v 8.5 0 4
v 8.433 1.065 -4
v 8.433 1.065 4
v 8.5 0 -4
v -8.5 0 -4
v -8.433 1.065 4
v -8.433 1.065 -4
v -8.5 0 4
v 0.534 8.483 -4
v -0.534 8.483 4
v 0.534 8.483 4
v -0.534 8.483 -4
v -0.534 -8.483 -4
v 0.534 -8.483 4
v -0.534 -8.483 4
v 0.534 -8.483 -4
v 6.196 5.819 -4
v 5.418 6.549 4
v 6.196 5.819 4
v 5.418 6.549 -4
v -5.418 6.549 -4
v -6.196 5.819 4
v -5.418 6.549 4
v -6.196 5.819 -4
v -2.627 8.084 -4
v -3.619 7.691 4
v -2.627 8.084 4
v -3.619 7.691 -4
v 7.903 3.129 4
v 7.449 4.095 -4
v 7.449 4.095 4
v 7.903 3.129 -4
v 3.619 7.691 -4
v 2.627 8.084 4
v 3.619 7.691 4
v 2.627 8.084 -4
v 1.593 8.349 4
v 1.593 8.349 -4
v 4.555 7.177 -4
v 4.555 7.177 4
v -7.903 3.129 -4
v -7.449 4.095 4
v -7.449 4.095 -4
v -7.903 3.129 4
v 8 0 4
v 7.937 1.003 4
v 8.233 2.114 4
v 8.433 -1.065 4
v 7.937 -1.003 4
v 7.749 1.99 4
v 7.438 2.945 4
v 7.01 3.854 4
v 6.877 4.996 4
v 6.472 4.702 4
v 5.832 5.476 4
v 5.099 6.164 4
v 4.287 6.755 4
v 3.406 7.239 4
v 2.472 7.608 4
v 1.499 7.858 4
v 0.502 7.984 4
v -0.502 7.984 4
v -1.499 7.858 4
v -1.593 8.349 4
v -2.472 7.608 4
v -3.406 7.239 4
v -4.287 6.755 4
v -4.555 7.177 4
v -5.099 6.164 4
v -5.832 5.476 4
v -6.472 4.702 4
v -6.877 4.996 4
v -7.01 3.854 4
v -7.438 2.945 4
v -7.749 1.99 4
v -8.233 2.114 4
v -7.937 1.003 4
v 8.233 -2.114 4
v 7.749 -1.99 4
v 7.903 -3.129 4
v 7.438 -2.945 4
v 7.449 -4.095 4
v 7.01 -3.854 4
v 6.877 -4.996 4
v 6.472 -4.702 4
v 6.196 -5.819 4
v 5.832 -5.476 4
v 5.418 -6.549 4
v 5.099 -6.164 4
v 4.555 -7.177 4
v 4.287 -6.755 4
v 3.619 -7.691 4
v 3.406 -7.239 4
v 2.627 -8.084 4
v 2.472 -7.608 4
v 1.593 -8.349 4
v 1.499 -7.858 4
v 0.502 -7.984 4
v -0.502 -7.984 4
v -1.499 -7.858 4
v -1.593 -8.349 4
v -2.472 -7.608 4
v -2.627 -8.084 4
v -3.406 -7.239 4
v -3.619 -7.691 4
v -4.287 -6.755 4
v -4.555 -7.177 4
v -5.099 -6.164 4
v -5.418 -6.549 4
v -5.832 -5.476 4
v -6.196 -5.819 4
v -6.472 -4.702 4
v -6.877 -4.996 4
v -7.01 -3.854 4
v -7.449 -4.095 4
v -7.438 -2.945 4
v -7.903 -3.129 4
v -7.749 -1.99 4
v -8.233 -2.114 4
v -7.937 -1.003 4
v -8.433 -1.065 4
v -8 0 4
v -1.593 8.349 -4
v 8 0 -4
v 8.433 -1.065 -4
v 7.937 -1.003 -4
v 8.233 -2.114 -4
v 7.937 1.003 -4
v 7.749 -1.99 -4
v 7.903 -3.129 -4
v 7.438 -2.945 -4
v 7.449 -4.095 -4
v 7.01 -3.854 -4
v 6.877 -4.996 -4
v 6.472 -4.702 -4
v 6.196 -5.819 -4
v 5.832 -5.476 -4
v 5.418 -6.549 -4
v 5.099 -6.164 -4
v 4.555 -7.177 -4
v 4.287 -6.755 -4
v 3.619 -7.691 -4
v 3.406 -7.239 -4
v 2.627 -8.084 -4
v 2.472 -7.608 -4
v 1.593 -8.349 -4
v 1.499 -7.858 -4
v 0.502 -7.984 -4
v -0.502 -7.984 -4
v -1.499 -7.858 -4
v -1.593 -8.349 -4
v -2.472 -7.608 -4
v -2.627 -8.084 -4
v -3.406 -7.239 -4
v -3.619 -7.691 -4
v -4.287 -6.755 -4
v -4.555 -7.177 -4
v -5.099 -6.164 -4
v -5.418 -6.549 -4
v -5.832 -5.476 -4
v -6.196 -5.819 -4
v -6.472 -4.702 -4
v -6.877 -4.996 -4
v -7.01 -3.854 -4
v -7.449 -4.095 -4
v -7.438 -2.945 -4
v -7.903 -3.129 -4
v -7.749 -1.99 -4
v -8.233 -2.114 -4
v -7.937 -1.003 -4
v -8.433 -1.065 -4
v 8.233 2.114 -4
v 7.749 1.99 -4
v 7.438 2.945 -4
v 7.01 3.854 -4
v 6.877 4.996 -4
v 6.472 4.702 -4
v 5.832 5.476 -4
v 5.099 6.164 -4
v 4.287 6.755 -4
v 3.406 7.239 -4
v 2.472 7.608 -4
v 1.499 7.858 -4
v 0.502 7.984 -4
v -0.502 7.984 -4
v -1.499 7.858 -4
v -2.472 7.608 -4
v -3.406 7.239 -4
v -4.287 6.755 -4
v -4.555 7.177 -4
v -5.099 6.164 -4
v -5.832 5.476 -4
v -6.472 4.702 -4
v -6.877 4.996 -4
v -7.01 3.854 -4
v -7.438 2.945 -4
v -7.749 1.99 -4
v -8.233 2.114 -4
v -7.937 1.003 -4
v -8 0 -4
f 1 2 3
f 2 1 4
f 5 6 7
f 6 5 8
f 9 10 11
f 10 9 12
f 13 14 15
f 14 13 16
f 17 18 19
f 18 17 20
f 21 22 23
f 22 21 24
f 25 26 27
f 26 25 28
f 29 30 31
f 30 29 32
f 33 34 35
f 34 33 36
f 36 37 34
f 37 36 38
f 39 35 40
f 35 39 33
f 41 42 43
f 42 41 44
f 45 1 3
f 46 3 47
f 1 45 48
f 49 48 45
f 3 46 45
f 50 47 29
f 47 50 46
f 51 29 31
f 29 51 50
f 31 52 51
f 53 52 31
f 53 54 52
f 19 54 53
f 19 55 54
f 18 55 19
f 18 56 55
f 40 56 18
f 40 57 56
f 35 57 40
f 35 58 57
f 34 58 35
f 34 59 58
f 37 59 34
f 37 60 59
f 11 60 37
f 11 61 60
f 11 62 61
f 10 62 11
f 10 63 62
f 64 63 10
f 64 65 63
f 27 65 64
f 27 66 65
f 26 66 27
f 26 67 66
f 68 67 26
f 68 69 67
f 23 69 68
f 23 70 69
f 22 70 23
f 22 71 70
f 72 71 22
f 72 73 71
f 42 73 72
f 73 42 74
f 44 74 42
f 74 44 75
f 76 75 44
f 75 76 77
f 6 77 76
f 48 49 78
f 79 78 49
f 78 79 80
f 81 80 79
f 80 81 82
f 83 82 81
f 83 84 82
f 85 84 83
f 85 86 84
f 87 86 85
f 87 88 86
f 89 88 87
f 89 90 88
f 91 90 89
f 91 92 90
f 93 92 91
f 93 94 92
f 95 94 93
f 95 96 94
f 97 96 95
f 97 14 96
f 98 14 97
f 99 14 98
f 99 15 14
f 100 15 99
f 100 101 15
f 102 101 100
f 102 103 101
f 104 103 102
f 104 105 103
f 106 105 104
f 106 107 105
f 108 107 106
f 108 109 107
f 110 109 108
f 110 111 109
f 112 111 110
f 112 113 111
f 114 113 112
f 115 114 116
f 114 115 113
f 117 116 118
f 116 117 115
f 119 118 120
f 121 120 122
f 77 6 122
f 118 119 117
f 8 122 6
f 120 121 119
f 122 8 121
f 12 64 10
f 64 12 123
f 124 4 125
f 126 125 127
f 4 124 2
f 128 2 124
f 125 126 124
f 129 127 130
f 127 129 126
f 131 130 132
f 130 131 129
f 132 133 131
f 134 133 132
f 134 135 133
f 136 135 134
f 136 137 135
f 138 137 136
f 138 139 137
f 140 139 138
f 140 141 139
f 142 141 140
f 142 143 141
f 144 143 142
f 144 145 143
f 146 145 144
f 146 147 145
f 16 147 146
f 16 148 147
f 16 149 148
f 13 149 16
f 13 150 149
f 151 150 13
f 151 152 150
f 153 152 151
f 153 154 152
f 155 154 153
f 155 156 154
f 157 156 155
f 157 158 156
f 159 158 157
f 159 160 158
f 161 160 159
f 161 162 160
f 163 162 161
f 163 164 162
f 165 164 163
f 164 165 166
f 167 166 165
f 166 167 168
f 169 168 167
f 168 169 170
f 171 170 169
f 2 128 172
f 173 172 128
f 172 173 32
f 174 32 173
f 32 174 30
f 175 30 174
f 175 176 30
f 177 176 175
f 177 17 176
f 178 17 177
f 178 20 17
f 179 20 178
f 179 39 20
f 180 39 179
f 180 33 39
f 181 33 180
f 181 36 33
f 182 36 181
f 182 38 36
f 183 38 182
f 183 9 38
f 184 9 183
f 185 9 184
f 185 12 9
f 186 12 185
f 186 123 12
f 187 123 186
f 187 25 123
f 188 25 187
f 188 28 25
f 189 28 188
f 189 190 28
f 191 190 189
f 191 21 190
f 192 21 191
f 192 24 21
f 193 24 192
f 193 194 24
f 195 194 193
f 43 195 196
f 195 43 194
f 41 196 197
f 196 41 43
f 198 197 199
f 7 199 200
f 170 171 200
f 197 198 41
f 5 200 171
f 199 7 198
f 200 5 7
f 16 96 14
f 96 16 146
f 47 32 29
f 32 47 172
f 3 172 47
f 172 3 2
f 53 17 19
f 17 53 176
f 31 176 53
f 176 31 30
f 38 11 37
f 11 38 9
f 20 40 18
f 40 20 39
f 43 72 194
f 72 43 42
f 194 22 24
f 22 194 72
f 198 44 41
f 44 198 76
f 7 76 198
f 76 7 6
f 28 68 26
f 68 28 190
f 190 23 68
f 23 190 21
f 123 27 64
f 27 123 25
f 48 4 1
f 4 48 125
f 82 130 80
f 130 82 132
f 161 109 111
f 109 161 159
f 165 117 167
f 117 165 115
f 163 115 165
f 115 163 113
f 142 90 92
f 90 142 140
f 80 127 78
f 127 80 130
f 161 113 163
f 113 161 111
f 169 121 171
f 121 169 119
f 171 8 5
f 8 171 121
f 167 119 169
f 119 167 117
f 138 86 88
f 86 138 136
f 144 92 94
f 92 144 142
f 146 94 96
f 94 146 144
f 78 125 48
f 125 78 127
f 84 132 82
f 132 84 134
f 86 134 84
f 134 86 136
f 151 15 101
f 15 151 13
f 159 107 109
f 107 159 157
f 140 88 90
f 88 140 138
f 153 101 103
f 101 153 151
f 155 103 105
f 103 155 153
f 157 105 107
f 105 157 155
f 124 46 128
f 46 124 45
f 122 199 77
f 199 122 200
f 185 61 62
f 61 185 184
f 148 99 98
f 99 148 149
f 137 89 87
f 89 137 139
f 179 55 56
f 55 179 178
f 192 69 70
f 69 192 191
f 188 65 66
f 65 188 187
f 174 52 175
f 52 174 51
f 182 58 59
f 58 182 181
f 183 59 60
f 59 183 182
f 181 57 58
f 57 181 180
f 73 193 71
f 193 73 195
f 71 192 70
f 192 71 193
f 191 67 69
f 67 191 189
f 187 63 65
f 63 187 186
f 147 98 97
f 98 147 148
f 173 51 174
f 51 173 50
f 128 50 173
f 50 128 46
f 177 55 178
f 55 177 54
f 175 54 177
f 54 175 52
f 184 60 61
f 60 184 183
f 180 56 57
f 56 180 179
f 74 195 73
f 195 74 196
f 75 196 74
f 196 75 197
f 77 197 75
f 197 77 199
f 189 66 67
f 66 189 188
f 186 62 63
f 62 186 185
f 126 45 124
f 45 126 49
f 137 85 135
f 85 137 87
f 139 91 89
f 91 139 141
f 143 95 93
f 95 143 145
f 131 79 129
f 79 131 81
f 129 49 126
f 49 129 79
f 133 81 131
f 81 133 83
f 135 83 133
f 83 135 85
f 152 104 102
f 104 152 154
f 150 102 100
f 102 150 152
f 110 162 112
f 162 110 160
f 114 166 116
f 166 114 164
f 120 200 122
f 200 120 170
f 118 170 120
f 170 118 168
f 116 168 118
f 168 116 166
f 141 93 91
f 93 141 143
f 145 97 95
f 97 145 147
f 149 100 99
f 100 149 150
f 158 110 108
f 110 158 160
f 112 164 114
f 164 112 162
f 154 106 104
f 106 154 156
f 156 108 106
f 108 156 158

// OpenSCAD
$fn = 50;


difference() {
	union() {
		translate(v = [0, 0, -4.0000000000]) {
			cylinder(h = 8, r = 8.5000000000);
		}
	}
	union() {
		translate(v = [0, 0, -100.0000000000]) {
			cylinder(h = 200, r = 8);
		}
	}
}
